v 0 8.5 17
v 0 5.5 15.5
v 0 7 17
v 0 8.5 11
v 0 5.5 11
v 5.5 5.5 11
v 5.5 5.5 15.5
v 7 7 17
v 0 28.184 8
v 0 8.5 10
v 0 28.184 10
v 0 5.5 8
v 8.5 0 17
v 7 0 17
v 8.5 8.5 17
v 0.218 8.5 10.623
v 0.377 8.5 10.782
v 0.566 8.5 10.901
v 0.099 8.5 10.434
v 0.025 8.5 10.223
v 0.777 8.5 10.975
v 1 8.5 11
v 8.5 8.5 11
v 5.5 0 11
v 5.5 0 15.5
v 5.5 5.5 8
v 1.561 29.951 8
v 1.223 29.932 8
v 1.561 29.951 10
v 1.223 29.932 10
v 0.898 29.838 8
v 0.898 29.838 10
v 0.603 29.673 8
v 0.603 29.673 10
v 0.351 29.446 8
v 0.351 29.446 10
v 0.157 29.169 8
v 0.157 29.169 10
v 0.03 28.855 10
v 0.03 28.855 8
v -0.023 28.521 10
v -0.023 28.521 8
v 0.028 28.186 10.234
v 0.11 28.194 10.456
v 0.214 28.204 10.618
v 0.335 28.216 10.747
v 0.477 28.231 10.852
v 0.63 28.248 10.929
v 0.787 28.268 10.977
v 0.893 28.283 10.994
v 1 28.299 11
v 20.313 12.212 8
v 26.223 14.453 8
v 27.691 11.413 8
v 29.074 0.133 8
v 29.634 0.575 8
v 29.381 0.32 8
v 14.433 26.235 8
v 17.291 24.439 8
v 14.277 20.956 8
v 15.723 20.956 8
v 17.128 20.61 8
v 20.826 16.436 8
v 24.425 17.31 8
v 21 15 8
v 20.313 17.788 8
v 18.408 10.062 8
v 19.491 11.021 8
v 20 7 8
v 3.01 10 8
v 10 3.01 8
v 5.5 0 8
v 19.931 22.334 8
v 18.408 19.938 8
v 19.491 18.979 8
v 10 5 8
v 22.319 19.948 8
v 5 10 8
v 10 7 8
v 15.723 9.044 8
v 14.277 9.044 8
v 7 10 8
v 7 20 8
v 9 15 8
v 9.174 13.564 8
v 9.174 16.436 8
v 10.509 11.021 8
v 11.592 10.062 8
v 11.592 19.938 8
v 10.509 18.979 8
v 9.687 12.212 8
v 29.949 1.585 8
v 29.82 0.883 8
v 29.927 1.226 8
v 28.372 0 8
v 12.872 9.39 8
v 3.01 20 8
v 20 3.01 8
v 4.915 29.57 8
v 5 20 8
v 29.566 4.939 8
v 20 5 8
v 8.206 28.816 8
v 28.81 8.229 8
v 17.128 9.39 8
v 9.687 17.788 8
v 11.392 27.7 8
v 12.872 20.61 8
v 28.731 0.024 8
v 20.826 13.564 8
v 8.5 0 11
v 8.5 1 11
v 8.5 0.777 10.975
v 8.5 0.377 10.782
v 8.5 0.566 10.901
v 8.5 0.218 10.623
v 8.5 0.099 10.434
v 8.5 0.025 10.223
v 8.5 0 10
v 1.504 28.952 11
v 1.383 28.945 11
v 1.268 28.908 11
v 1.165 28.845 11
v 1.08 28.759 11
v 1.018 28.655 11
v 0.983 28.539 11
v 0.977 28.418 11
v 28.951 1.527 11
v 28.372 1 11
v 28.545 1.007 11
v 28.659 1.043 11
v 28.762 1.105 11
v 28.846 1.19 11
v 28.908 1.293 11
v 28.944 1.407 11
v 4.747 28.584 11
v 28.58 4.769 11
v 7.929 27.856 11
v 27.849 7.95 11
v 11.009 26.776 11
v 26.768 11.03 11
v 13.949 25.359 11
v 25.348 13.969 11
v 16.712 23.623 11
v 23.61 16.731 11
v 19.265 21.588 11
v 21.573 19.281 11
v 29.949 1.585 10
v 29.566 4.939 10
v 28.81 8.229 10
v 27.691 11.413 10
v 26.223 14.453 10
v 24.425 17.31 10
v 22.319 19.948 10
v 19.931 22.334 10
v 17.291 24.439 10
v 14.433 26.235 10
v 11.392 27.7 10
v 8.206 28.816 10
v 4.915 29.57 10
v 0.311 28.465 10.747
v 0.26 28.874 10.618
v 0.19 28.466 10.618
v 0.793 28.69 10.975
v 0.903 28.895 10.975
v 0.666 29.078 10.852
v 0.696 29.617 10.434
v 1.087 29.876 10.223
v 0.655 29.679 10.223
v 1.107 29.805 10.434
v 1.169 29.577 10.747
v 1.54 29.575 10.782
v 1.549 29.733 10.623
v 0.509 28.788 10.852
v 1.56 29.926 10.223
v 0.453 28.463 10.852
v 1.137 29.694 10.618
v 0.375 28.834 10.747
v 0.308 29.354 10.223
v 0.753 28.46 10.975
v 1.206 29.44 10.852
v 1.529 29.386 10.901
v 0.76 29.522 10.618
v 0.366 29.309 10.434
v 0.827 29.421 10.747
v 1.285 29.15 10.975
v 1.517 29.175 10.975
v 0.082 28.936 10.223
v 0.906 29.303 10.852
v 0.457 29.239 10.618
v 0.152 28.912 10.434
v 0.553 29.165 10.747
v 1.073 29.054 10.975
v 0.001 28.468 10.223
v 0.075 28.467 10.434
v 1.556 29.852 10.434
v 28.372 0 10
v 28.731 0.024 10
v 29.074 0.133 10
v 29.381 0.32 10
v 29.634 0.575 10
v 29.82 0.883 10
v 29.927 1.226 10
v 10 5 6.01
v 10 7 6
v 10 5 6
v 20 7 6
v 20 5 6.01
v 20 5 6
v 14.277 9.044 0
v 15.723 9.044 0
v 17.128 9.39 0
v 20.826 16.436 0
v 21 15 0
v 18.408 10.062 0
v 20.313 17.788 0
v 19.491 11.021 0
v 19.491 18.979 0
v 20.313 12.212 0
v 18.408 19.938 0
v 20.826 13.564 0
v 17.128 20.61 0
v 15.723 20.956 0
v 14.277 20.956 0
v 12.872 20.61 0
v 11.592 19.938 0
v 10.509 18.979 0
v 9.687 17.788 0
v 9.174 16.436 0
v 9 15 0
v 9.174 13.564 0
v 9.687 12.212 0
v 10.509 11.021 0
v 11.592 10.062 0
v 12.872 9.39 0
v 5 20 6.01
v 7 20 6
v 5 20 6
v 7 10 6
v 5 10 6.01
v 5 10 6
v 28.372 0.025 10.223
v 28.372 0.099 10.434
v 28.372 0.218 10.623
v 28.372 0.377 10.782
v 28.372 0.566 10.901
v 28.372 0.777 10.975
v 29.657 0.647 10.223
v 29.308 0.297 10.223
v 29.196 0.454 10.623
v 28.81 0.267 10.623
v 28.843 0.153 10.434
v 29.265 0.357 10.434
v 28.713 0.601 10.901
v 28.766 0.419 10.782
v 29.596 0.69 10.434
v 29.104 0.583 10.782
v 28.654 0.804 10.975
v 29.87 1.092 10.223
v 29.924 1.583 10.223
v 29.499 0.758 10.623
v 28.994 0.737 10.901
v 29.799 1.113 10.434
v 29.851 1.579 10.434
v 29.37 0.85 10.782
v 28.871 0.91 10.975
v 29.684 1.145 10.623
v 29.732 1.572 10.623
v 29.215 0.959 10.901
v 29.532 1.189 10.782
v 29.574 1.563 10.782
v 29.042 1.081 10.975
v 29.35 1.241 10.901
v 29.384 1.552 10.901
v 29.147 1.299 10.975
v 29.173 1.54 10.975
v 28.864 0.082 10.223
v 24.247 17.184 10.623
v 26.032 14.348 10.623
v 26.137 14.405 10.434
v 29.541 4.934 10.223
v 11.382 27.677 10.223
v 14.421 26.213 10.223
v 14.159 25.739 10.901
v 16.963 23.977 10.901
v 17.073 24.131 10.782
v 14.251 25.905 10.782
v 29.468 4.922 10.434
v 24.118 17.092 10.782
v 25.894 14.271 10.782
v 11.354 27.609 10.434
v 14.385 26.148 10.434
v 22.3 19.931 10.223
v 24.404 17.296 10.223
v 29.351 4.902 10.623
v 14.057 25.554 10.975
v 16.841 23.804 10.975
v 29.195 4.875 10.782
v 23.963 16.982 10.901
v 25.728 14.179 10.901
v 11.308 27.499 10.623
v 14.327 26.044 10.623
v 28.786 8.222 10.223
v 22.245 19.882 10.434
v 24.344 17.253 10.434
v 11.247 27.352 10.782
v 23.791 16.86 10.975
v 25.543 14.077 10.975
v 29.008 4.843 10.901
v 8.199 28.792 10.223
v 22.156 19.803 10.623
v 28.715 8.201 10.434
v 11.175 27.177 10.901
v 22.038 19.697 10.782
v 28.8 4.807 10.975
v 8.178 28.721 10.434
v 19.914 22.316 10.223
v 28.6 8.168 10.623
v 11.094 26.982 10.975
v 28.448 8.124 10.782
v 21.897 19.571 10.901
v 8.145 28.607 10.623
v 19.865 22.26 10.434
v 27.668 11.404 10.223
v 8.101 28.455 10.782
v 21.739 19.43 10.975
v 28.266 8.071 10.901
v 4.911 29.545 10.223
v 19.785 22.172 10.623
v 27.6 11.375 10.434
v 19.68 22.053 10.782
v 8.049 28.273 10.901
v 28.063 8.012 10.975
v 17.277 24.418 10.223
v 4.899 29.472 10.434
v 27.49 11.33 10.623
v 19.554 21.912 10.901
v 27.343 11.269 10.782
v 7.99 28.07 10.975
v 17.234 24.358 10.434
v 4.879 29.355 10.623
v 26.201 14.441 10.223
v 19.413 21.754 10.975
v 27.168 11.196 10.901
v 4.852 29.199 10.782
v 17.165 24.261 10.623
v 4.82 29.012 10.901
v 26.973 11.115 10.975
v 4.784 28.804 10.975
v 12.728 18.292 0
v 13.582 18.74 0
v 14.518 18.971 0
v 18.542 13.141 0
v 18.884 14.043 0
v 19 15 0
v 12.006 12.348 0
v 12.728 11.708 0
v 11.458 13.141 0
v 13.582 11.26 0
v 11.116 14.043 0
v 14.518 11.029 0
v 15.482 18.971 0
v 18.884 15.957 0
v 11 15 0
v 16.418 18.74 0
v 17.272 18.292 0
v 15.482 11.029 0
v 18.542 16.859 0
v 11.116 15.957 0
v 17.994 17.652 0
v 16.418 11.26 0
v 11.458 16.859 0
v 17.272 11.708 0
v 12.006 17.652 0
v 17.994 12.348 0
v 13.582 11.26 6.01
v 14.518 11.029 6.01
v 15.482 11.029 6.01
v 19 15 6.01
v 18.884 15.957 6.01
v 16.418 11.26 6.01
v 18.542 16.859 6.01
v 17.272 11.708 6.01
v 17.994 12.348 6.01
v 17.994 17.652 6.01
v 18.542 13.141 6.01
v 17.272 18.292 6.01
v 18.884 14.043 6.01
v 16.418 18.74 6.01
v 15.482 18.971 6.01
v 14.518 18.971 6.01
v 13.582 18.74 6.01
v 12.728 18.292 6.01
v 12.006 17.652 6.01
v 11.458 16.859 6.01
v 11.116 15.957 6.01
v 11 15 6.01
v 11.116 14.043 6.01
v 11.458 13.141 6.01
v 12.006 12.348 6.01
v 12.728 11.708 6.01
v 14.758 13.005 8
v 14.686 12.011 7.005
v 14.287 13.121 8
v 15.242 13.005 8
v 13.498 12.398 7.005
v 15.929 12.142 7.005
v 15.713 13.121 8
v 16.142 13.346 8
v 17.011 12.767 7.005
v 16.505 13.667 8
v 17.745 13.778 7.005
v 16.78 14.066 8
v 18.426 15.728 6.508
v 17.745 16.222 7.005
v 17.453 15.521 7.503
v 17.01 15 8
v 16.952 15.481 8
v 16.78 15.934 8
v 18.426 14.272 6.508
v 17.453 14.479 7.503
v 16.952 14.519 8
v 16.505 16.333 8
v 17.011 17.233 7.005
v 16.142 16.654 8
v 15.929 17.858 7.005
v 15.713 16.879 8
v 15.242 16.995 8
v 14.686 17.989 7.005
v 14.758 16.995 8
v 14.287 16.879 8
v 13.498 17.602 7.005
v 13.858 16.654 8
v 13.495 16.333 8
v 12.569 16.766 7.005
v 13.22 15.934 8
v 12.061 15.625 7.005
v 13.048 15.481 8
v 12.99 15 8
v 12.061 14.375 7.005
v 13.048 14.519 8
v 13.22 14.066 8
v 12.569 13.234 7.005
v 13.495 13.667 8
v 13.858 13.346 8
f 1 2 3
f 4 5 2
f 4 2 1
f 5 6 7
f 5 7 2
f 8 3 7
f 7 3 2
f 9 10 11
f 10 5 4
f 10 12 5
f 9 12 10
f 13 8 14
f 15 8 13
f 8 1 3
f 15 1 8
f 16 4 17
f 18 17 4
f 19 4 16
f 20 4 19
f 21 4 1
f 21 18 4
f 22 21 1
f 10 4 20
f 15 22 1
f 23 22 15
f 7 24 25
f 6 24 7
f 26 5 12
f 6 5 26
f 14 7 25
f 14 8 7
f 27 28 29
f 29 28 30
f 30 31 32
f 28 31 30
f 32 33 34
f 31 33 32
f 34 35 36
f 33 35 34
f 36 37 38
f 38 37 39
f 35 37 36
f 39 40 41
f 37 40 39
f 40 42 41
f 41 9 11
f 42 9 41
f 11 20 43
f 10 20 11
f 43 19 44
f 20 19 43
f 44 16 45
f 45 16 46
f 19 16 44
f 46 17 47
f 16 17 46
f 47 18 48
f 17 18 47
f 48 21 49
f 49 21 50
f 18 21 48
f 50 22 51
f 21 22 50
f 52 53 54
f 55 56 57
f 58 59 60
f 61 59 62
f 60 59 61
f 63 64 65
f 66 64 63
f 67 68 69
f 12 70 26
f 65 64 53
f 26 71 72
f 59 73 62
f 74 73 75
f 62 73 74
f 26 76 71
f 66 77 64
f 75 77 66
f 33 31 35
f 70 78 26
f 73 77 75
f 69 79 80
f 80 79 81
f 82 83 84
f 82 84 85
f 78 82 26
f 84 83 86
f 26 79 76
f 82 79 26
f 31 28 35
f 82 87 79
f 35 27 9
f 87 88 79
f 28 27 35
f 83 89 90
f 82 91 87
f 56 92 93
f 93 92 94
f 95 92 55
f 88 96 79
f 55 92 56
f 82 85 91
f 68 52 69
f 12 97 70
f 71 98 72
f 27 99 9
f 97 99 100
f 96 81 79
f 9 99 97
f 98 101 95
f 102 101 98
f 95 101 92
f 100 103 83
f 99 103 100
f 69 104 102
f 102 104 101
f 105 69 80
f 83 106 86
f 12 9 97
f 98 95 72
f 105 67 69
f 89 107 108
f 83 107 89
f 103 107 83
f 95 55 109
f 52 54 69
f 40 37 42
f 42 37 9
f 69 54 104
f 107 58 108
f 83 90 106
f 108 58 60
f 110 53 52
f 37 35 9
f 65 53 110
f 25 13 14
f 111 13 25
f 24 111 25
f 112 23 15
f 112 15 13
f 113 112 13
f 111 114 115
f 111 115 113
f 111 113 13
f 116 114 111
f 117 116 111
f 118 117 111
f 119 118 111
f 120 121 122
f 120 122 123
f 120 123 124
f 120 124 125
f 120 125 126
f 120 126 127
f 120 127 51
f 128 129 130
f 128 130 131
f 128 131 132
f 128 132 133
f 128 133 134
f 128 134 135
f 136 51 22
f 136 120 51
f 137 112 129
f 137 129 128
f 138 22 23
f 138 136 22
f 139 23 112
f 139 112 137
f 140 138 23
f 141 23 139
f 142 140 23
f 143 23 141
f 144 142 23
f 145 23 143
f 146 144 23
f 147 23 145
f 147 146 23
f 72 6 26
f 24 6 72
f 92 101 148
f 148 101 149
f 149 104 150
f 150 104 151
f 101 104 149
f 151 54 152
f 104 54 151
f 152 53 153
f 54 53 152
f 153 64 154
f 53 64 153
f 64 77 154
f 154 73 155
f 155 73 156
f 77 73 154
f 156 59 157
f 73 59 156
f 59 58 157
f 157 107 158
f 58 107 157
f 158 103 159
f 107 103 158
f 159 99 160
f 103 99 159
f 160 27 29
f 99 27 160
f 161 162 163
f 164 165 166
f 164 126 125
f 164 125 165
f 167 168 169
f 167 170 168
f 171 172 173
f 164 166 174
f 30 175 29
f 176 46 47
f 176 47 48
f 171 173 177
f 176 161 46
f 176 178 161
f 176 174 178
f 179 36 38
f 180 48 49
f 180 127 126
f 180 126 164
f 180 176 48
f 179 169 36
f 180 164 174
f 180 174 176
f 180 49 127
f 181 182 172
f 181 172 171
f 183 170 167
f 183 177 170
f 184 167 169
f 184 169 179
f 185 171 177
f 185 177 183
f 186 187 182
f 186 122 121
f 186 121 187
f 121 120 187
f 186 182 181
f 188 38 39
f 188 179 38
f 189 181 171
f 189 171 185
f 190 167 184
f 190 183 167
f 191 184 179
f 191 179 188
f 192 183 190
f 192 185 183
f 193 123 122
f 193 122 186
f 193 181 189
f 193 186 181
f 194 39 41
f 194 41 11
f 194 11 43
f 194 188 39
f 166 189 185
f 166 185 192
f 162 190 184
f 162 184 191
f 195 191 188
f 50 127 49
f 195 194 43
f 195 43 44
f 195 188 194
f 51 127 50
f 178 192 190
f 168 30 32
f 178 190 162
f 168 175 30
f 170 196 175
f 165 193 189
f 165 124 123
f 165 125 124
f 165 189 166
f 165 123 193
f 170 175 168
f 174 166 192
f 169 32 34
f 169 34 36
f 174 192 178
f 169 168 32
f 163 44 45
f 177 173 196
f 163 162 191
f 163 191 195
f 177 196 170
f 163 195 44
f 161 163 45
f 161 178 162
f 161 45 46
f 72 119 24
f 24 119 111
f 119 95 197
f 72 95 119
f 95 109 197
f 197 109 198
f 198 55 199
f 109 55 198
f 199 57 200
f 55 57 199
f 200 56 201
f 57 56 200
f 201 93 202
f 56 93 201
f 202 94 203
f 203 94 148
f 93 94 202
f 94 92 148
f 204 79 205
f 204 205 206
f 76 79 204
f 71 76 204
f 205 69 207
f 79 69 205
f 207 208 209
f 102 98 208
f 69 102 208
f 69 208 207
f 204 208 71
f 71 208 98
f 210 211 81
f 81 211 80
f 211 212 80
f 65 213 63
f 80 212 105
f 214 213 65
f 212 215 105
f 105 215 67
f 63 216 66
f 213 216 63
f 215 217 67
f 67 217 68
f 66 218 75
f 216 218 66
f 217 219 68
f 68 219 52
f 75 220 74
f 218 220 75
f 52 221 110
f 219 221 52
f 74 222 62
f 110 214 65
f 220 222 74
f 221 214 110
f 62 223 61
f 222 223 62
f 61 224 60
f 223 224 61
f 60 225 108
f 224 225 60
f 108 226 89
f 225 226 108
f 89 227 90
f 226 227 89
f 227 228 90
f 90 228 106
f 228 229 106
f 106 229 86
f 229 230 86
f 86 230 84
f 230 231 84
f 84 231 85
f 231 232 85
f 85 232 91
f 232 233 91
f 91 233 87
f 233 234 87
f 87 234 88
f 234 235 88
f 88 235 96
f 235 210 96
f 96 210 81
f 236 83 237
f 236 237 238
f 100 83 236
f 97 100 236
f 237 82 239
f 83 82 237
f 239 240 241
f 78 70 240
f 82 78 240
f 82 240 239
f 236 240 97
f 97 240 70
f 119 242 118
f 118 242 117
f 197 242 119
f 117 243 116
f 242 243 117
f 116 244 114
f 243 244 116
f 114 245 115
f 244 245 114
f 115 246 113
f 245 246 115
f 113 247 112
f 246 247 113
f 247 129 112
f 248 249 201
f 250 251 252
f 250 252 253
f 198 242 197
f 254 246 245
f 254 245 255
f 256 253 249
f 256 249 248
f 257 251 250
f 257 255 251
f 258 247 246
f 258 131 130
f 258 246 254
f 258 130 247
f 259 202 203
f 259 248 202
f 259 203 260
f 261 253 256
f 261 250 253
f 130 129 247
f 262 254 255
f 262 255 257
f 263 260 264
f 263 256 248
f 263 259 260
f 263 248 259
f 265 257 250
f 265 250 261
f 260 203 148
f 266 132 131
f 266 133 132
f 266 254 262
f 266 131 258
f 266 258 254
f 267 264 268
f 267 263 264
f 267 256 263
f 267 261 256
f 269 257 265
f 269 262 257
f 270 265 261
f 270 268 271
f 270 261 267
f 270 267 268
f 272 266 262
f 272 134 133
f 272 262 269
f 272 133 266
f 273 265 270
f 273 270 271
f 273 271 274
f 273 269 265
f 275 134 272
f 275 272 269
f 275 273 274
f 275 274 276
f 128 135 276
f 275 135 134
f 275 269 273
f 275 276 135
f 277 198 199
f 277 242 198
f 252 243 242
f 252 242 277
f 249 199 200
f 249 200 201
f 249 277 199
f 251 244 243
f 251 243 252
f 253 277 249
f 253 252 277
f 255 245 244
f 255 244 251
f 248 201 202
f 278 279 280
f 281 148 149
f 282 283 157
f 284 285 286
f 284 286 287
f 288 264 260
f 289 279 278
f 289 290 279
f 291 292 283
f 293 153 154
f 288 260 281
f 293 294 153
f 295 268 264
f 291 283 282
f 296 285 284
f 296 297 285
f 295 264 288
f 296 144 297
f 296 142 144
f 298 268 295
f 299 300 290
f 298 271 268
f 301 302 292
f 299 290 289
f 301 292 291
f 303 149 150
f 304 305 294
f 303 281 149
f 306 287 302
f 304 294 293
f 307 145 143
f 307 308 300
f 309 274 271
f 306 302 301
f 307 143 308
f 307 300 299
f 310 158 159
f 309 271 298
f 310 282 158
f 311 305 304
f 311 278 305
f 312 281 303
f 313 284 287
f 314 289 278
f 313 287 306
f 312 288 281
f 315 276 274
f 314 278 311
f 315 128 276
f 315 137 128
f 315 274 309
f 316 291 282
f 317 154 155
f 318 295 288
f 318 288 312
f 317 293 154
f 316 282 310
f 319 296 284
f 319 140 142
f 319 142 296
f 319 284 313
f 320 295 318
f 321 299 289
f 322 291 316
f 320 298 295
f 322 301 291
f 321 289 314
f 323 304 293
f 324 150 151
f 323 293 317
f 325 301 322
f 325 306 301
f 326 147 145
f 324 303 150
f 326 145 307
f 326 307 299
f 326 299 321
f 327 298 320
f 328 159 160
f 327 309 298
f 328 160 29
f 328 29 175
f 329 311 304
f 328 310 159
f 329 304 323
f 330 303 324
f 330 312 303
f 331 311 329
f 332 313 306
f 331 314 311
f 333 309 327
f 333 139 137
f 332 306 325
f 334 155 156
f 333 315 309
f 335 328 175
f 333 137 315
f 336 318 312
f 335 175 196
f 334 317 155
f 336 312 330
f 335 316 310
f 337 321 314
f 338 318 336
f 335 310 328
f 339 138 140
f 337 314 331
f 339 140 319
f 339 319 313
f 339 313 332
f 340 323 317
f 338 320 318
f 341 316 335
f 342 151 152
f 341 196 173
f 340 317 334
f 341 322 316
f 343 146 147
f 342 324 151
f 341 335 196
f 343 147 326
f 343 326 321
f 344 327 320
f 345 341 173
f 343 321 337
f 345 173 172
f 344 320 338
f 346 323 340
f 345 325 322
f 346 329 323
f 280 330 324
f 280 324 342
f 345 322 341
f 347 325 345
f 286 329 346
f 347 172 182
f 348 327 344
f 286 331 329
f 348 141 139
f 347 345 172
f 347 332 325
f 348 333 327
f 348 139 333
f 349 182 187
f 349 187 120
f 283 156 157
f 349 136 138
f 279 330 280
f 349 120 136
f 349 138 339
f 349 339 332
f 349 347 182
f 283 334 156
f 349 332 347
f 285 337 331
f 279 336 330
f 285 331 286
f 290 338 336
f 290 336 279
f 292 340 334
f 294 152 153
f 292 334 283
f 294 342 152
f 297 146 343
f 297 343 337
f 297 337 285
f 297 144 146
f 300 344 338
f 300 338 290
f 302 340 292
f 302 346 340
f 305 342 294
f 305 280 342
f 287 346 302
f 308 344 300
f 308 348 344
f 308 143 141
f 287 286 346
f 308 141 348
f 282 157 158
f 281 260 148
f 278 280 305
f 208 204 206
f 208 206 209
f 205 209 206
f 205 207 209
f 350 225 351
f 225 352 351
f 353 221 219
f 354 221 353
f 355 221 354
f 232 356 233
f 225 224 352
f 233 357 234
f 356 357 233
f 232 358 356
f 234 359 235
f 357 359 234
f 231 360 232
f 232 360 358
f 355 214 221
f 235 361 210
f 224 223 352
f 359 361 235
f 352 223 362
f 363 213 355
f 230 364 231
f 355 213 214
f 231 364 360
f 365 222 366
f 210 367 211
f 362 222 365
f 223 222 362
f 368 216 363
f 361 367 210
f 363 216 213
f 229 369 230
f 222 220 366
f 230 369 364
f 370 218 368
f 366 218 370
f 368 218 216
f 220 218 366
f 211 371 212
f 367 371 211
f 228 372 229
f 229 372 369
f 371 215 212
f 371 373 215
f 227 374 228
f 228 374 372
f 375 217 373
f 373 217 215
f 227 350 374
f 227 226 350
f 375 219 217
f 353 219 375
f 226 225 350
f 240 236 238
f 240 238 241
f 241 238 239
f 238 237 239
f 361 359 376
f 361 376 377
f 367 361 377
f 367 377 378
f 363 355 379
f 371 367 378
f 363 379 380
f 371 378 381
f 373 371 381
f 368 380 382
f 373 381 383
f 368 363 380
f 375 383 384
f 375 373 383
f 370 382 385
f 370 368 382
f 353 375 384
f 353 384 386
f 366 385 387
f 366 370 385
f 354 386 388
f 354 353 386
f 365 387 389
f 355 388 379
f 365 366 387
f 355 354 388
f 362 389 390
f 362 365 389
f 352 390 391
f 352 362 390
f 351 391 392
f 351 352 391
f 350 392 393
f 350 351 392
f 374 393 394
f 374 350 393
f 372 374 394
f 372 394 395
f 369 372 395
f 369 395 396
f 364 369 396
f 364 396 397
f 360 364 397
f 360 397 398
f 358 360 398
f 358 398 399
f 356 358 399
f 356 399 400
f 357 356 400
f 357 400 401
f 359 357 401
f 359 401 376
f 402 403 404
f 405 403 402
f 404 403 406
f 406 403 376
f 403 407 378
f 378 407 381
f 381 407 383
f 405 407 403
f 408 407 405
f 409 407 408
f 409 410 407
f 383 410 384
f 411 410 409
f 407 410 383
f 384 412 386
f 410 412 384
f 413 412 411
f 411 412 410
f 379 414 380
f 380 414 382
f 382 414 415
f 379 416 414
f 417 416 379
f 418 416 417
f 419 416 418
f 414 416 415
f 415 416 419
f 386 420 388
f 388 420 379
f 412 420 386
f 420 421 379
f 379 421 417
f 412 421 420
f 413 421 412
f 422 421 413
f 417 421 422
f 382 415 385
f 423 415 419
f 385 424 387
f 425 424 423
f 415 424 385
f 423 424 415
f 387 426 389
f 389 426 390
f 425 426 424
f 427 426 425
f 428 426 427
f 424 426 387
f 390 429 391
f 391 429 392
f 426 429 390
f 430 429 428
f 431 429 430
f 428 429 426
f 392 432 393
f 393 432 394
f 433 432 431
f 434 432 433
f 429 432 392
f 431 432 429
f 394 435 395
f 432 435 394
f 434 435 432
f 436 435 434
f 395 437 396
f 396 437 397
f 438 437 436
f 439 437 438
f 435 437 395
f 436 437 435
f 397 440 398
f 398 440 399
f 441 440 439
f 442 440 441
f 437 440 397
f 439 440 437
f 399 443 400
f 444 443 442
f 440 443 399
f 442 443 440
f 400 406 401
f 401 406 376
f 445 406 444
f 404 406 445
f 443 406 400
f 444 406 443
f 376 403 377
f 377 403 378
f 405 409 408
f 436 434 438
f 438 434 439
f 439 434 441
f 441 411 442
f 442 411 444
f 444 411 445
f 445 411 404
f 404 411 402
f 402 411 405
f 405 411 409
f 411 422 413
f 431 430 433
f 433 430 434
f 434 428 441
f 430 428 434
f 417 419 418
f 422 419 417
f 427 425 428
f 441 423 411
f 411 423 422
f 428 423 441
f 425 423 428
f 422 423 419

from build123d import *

# Parameters (mm, degrees)
SKETCH_R        = 6
SKETCH_R_2      = 4
PAD_DEPTH       = 8
PAD001_DEPTH    = 3
SKETCH002_W     = 2
SKETCH002_H     = 10
SKETCH002_W_2   = 10
SKETCH002_H_2   = 2
PAD002_DEPTH    = 2
CHAMFER_SIZE    = 1.99
CHAMFER001_SIZE = 1.99
PAD003_DEPTH    = 6
PAD003_FACE20_W = 5.5
PAD003_FACE20_H = 5.5
POCKET_DEPTH    = 11.001
FILLET_R        = 1
CHAMFER002_SIZE = 1.5


with BuildPart() as part:
    # Sketch → Pad (new body)
    with BuildSketch(Plane.XY):
        with Locations((15, 15)):
            Circle(SKETCH_R)
        with Locations((15, 15)):
            Circle(SKETCH_R_2, mode=Mode.SUBTRACT)
    extrude(amount=PAD_DEPTH)

    # Sketch001 (on Face4 of Pad) → Pad001 (join)
    with BuildSketch(Plane.XY.offset(8)):
        with BuildLine():
            Line((0, 28.183589), (0, 0))
            Line((0, 0), (28.371979, 0))
            ThreePointArc((28.371979, 0), (29.515053, 0.439592), (29.949498, 1.584632))
            ThreePointArc((29.949498, 1.584632), (21.158025, 21.174653), (1.561155, 29.950849))
            ThreePointArc((1.561155, 29.950849), (0.351368, 29.446372), (0, 28.183589))
        make_face()
    extrude(amount=PAD001_DEPTH)

    # Sketch002 (on Face4 of Pad001) → Pad002 (join)
    with BuildSketch(Plane(origin=(0, 0, 8), x_dir=(1, 0, 0), z_dir=(0, 0, -1))):
        with Locations((6, -15)):
            Rectangle(SKETCH002_W, SKETCH002_H)
        with Locations((15, -6)):
            Rectangle(SKETCH002_W_2, SKETCH002_H_2)
    extrude(amount=PAD002_DEPTH)

    # Chamfer
    chamfer_edges = [part.edges().sort_by_distance(p)[0] for p in [
        (11, 15, 8),
    ]]
    chamfer(chamfer_edges, length=CHAMFER_SIZE)

    # Chamfer001
    chamfer001_edges = [part.edges().sort_by_distance(p)[0] for p in [
        (5, 15, 8),
        (15, 5, 8),
    ]]
    chamfer(chamfer001_edges, length=CHAMFER001_SIZE)

    # Sketch003 → Pad003 (join)
    with BuildSketch(Plane.XY.offset(11)):
        Polygon((0, 8.5), (8.5, 8.5), (8.5, 0), (5.5, 0), (5.5, 5.5), (0, 5.5), align=None)
    extrude(amount=PAD003_DEPTH)

    # Pad003 Face20 → Pocket (cut, through all)
    with BuildSketch(Plane(origin=(2.75, 2.75, 11), x_dir=(0, 1, 0), z_dir=(0, 0, 1))):
        Rectangle(PAD003_FACE20_W, PAD003_FACE20_H)
    extrude(amount=-POCKET_DEPTH, mode=Mode.SUBTRACT)

    # Fillet
    fillet_edges = [part.edges().sort_by_distance(p)[0] for p in [
        (29.515053, 0.439592, 11),
        (18.435989, 0, 11),
        (21.158025, 21.174653, 11),
        (0.351368, 29.446372, 11),
        (0, 18.341794, 11),
    ]]
    fillet(fillet_edges, radius=FILLET_R)

    # Chamfer002
    chamfer002_edges = [part.edges().sort_by_distance(p)[0] for p in [
        (2.75, 5.5, 17),
        (5.5, 2.75, 17),
    ]]
    chamfer(chamfer002_edges, length=CHAMFER002_SIZE)


solid = part.part
